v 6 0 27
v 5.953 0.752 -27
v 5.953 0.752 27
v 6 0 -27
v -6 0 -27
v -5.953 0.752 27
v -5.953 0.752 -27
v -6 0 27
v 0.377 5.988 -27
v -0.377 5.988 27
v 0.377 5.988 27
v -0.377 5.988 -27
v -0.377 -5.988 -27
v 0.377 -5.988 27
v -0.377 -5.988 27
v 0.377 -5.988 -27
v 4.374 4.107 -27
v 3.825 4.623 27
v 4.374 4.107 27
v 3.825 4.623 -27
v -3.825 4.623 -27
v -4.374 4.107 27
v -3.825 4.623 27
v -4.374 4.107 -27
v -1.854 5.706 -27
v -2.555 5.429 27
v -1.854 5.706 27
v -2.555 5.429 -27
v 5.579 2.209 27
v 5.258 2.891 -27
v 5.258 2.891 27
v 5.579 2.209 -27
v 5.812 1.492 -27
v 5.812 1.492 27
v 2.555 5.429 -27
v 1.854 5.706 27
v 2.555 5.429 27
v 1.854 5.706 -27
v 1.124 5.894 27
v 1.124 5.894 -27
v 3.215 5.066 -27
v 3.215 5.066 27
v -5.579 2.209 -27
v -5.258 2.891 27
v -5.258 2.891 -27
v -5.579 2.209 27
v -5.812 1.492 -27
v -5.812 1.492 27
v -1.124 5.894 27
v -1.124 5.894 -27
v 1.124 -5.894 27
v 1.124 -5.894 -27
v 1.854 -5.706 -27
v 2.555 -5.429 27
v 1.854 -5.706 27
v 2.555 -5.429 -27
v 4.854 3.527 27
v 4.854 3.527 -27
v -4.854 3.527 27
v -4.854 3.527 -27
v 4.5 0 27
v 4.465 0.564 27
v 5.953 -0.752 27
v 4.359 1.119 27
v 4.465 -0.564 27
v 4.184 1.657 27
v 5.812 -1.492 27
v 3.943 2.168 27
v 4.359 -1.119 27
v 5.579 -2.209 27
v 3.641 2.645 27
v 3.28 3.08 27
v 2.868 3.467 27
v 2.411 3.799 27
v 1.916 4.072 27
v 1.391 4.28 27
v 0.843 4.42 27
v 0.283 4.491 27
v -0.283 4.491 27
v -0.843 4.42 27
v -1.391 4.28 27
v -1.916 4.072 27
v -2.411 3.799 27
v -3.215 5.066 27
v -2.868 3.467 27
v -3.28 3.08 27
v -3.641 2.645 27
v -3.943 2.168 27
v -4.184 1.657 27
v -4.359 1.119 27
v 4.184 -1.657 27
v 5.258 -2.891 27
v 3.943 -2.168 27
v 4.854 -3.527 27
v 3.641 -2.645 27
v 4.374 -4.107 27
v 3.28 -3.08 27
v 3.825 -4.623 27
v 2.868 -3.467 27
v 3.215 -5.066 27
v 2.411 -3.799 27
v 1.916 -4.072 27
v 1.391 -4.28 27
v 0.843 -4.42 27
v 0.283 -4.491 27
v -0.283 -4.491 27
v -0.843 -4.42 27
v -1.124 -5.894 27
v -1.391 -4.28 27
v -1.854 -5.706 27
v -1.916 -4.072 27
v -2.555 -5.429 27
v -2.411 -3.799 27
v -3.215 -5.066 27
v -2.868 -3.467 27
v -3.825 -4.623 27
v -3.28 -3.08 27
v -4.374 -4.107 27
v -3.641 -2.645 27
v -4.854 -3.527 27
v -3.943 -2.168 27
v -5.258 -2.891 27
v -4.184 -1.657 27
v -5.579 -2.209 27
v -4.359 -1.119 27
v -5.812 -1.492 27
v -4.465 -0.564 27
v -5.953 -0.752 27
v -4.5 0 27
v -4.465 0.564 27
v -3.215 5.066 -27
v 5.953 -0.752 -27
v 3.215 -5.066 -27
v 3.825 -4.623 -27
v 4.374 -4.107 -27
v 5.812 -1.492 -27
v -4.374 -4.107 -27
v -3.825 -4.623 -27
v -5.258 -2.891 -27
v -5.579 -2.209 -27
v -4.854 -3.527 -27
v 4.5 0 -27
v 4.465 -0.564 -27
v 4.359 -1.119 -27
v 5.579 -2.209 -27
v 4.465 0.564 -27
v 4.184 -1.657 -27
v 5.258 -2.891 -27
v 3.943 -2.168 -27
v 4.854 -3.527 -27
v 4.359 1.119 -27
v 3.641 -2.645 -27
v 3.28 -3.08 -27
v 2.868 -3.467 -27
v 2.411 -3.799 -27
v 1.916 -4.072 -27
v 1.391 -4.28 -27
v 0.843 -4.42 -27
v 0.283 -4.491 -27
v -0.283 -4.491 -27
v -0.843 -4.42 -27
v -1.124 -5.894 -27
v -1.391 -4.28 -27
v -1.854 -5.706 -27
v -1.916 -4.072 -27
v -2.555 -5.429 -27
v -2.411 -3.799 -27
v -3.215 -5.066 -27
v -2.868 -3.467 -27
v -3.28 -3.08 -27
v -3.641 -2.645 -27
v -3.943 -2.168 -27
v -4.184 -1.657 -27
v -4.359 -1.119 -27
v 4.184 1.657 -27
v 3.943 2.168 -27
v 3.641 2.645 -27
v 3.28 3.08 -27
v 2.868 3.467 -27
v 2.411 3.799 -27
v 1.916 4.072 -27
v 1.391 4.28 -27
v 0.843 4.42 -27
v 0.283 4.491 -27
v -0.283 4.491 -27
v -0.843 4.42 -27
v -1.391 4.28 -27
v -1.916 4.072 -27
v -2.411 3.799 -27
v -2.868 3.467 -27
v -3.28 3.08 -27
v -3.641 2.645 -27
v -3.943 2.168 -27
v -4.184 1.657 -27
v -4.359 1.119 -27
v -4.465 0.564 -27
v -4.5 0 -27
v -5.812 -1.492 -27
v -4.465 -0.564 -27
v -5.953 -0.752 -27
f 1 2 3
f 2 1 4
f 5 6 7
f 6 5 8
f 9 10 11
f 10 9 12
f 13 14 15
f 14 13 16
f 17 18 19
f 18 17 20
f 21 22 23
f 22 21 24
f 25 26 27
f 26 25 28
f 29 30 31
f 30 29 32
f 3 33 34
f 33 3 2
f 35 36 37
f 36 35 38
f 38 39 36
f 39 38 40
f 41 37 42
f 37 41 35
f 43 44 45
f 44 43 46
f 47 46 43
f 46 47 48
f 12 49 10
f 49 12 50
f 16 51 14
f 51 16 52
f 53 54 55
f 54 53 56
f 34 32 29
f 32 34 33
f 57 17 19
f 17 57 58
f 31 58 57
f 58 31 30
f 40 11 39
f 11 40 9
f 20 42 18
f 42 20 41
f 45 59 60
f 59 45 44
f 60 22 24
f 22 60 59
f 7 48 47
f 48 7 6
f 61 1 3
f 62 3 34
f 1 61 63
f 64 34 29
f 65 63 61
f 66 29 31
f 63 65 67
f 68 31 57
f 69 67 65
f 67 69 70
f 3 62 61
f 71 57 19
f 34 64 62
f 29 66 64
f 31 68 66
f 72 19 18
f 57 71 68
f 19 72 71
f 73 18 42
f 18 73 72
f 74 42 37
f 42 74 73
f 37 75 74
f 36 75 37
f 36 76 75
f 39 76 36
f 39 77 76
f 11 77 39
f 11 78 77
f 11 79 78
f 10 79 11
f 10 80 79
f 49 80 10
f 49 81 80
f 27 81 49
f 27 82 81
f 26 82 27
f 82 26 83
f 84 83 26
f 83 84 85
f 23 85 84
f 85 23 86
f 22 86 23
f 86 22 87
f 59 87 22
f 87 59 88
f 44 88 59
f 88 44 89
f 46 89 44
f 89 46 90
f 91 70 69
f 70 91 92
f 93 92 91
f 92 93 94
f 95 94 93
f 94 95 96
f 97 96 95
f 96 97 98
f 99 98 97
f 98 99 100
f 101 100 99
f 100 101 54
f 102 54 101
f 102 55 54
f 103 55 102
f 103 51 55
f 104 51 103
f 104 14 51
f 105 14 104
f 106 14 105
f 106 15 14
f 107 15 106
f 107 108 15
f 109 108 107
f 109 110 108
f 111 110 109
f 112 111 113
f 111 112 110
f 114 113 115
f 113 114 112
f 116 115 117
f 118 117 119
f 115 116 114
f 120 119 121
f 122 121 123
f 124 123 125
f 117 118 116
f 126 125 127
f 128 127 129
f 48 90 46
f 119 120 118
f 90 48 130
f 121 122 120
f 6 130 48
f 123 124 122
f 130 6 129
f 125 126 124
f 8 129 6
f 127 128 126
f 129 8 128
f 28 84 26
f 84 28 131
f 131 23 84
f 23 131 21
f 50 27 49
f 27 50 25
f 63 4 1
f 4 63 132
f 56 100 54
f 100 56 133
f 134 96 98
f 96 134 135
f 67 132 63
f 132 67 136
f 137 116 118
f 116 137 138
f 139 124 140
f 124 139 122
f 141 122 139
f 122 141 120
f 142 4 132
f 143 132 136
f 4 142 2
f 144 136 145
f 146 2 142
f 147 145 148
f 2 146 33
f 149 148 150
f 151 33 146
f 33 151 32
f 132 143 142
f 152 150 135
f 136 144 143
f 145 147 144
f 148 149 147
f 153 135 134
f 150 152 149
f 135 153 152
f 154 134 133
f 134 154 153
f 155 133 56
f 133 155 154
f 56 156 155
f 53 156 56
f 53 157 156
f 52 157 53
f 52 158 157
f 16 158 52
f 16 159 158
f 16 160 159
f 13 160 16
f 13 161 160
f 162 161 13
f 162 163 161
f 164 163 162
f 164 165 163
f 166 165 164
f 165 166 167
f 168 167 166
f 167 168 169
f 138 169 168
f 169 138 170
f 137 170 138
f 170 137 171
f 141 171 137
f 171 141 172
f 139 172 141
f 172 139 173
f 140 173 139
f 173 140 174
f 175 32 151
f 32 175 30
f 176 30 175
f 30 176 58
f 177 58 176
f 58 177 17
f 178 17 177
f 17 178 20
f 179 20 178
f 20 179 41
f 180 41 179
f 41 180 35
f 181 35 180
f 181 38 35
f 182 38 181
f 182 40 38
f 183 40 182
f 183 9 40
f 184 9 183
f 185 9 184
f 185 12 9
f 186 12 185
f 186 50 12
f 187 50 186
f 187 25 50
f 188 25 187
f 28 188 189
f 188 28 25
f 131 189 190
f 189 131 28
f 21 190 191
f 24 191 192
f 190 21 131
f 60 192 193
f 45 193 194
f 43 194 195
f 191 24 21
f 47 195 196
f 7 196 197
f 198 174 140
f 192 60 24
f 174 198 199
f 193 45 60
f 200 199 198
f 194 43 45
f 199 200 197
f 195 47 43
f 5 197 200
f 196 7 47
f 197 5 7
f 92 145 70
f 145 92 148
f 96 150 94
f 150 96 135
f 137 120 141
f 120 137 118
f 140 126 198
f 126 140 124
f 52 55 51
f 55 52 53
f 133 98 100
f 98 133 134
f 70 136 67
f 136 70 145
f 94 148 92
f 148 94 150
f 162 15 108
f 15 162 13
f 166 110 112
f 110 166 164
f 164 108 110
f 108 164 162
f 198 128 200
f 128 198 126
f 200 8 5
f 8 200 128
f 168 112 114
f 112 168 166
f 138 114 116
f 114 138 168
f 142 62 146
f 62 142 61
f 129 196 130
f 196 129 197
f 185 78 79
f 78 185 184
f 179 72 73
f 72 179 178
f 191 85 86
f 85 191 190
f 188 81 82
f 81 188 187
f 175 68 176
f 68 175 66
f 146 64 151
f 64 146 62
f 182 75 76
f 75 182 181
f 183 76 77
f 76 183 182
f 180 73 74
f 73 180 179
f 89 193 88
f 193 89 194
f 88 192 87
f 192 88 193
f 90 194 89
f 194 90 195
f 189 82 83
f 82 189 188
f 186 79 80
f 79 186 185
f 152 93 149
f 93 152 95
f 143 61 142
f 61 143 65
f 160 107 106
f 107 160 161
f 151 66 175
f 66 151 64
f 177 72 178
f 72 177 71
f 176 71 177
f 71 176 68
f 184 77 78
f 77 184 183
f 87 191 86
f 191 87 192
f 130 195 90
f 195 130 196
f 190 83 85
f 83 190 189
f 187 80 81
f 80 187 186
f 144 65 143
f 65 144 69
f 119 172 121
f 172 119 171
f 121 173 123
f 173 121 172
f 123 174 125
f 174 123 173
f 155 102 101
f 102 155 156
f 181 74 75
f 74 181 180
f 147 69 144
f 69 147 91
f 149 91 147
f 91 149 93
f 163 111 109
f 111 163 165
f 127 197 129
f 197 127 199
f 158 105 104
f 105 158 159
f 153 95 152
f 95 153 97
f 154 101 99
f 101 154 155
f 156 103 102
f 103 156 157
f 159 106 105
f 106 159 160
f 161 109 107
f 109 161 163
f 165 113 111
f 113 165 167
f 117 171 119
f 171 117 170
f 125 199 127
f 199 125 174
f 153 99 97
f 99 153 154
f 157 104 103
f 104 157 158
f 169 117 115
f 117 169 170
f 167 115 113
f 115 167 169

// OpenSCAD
$fn = 50;


difference() {
	union() {
		translate(v = [0, 0, -27.0000000000]) {
			cylinder(h = 54, r = 6.0000000000);
		}
	}
	union() {
		translate(v = [0, 0, -100.0000000000]) {
			cylinder(h = 200, r = 4.5000000000);
		}
	}
}
